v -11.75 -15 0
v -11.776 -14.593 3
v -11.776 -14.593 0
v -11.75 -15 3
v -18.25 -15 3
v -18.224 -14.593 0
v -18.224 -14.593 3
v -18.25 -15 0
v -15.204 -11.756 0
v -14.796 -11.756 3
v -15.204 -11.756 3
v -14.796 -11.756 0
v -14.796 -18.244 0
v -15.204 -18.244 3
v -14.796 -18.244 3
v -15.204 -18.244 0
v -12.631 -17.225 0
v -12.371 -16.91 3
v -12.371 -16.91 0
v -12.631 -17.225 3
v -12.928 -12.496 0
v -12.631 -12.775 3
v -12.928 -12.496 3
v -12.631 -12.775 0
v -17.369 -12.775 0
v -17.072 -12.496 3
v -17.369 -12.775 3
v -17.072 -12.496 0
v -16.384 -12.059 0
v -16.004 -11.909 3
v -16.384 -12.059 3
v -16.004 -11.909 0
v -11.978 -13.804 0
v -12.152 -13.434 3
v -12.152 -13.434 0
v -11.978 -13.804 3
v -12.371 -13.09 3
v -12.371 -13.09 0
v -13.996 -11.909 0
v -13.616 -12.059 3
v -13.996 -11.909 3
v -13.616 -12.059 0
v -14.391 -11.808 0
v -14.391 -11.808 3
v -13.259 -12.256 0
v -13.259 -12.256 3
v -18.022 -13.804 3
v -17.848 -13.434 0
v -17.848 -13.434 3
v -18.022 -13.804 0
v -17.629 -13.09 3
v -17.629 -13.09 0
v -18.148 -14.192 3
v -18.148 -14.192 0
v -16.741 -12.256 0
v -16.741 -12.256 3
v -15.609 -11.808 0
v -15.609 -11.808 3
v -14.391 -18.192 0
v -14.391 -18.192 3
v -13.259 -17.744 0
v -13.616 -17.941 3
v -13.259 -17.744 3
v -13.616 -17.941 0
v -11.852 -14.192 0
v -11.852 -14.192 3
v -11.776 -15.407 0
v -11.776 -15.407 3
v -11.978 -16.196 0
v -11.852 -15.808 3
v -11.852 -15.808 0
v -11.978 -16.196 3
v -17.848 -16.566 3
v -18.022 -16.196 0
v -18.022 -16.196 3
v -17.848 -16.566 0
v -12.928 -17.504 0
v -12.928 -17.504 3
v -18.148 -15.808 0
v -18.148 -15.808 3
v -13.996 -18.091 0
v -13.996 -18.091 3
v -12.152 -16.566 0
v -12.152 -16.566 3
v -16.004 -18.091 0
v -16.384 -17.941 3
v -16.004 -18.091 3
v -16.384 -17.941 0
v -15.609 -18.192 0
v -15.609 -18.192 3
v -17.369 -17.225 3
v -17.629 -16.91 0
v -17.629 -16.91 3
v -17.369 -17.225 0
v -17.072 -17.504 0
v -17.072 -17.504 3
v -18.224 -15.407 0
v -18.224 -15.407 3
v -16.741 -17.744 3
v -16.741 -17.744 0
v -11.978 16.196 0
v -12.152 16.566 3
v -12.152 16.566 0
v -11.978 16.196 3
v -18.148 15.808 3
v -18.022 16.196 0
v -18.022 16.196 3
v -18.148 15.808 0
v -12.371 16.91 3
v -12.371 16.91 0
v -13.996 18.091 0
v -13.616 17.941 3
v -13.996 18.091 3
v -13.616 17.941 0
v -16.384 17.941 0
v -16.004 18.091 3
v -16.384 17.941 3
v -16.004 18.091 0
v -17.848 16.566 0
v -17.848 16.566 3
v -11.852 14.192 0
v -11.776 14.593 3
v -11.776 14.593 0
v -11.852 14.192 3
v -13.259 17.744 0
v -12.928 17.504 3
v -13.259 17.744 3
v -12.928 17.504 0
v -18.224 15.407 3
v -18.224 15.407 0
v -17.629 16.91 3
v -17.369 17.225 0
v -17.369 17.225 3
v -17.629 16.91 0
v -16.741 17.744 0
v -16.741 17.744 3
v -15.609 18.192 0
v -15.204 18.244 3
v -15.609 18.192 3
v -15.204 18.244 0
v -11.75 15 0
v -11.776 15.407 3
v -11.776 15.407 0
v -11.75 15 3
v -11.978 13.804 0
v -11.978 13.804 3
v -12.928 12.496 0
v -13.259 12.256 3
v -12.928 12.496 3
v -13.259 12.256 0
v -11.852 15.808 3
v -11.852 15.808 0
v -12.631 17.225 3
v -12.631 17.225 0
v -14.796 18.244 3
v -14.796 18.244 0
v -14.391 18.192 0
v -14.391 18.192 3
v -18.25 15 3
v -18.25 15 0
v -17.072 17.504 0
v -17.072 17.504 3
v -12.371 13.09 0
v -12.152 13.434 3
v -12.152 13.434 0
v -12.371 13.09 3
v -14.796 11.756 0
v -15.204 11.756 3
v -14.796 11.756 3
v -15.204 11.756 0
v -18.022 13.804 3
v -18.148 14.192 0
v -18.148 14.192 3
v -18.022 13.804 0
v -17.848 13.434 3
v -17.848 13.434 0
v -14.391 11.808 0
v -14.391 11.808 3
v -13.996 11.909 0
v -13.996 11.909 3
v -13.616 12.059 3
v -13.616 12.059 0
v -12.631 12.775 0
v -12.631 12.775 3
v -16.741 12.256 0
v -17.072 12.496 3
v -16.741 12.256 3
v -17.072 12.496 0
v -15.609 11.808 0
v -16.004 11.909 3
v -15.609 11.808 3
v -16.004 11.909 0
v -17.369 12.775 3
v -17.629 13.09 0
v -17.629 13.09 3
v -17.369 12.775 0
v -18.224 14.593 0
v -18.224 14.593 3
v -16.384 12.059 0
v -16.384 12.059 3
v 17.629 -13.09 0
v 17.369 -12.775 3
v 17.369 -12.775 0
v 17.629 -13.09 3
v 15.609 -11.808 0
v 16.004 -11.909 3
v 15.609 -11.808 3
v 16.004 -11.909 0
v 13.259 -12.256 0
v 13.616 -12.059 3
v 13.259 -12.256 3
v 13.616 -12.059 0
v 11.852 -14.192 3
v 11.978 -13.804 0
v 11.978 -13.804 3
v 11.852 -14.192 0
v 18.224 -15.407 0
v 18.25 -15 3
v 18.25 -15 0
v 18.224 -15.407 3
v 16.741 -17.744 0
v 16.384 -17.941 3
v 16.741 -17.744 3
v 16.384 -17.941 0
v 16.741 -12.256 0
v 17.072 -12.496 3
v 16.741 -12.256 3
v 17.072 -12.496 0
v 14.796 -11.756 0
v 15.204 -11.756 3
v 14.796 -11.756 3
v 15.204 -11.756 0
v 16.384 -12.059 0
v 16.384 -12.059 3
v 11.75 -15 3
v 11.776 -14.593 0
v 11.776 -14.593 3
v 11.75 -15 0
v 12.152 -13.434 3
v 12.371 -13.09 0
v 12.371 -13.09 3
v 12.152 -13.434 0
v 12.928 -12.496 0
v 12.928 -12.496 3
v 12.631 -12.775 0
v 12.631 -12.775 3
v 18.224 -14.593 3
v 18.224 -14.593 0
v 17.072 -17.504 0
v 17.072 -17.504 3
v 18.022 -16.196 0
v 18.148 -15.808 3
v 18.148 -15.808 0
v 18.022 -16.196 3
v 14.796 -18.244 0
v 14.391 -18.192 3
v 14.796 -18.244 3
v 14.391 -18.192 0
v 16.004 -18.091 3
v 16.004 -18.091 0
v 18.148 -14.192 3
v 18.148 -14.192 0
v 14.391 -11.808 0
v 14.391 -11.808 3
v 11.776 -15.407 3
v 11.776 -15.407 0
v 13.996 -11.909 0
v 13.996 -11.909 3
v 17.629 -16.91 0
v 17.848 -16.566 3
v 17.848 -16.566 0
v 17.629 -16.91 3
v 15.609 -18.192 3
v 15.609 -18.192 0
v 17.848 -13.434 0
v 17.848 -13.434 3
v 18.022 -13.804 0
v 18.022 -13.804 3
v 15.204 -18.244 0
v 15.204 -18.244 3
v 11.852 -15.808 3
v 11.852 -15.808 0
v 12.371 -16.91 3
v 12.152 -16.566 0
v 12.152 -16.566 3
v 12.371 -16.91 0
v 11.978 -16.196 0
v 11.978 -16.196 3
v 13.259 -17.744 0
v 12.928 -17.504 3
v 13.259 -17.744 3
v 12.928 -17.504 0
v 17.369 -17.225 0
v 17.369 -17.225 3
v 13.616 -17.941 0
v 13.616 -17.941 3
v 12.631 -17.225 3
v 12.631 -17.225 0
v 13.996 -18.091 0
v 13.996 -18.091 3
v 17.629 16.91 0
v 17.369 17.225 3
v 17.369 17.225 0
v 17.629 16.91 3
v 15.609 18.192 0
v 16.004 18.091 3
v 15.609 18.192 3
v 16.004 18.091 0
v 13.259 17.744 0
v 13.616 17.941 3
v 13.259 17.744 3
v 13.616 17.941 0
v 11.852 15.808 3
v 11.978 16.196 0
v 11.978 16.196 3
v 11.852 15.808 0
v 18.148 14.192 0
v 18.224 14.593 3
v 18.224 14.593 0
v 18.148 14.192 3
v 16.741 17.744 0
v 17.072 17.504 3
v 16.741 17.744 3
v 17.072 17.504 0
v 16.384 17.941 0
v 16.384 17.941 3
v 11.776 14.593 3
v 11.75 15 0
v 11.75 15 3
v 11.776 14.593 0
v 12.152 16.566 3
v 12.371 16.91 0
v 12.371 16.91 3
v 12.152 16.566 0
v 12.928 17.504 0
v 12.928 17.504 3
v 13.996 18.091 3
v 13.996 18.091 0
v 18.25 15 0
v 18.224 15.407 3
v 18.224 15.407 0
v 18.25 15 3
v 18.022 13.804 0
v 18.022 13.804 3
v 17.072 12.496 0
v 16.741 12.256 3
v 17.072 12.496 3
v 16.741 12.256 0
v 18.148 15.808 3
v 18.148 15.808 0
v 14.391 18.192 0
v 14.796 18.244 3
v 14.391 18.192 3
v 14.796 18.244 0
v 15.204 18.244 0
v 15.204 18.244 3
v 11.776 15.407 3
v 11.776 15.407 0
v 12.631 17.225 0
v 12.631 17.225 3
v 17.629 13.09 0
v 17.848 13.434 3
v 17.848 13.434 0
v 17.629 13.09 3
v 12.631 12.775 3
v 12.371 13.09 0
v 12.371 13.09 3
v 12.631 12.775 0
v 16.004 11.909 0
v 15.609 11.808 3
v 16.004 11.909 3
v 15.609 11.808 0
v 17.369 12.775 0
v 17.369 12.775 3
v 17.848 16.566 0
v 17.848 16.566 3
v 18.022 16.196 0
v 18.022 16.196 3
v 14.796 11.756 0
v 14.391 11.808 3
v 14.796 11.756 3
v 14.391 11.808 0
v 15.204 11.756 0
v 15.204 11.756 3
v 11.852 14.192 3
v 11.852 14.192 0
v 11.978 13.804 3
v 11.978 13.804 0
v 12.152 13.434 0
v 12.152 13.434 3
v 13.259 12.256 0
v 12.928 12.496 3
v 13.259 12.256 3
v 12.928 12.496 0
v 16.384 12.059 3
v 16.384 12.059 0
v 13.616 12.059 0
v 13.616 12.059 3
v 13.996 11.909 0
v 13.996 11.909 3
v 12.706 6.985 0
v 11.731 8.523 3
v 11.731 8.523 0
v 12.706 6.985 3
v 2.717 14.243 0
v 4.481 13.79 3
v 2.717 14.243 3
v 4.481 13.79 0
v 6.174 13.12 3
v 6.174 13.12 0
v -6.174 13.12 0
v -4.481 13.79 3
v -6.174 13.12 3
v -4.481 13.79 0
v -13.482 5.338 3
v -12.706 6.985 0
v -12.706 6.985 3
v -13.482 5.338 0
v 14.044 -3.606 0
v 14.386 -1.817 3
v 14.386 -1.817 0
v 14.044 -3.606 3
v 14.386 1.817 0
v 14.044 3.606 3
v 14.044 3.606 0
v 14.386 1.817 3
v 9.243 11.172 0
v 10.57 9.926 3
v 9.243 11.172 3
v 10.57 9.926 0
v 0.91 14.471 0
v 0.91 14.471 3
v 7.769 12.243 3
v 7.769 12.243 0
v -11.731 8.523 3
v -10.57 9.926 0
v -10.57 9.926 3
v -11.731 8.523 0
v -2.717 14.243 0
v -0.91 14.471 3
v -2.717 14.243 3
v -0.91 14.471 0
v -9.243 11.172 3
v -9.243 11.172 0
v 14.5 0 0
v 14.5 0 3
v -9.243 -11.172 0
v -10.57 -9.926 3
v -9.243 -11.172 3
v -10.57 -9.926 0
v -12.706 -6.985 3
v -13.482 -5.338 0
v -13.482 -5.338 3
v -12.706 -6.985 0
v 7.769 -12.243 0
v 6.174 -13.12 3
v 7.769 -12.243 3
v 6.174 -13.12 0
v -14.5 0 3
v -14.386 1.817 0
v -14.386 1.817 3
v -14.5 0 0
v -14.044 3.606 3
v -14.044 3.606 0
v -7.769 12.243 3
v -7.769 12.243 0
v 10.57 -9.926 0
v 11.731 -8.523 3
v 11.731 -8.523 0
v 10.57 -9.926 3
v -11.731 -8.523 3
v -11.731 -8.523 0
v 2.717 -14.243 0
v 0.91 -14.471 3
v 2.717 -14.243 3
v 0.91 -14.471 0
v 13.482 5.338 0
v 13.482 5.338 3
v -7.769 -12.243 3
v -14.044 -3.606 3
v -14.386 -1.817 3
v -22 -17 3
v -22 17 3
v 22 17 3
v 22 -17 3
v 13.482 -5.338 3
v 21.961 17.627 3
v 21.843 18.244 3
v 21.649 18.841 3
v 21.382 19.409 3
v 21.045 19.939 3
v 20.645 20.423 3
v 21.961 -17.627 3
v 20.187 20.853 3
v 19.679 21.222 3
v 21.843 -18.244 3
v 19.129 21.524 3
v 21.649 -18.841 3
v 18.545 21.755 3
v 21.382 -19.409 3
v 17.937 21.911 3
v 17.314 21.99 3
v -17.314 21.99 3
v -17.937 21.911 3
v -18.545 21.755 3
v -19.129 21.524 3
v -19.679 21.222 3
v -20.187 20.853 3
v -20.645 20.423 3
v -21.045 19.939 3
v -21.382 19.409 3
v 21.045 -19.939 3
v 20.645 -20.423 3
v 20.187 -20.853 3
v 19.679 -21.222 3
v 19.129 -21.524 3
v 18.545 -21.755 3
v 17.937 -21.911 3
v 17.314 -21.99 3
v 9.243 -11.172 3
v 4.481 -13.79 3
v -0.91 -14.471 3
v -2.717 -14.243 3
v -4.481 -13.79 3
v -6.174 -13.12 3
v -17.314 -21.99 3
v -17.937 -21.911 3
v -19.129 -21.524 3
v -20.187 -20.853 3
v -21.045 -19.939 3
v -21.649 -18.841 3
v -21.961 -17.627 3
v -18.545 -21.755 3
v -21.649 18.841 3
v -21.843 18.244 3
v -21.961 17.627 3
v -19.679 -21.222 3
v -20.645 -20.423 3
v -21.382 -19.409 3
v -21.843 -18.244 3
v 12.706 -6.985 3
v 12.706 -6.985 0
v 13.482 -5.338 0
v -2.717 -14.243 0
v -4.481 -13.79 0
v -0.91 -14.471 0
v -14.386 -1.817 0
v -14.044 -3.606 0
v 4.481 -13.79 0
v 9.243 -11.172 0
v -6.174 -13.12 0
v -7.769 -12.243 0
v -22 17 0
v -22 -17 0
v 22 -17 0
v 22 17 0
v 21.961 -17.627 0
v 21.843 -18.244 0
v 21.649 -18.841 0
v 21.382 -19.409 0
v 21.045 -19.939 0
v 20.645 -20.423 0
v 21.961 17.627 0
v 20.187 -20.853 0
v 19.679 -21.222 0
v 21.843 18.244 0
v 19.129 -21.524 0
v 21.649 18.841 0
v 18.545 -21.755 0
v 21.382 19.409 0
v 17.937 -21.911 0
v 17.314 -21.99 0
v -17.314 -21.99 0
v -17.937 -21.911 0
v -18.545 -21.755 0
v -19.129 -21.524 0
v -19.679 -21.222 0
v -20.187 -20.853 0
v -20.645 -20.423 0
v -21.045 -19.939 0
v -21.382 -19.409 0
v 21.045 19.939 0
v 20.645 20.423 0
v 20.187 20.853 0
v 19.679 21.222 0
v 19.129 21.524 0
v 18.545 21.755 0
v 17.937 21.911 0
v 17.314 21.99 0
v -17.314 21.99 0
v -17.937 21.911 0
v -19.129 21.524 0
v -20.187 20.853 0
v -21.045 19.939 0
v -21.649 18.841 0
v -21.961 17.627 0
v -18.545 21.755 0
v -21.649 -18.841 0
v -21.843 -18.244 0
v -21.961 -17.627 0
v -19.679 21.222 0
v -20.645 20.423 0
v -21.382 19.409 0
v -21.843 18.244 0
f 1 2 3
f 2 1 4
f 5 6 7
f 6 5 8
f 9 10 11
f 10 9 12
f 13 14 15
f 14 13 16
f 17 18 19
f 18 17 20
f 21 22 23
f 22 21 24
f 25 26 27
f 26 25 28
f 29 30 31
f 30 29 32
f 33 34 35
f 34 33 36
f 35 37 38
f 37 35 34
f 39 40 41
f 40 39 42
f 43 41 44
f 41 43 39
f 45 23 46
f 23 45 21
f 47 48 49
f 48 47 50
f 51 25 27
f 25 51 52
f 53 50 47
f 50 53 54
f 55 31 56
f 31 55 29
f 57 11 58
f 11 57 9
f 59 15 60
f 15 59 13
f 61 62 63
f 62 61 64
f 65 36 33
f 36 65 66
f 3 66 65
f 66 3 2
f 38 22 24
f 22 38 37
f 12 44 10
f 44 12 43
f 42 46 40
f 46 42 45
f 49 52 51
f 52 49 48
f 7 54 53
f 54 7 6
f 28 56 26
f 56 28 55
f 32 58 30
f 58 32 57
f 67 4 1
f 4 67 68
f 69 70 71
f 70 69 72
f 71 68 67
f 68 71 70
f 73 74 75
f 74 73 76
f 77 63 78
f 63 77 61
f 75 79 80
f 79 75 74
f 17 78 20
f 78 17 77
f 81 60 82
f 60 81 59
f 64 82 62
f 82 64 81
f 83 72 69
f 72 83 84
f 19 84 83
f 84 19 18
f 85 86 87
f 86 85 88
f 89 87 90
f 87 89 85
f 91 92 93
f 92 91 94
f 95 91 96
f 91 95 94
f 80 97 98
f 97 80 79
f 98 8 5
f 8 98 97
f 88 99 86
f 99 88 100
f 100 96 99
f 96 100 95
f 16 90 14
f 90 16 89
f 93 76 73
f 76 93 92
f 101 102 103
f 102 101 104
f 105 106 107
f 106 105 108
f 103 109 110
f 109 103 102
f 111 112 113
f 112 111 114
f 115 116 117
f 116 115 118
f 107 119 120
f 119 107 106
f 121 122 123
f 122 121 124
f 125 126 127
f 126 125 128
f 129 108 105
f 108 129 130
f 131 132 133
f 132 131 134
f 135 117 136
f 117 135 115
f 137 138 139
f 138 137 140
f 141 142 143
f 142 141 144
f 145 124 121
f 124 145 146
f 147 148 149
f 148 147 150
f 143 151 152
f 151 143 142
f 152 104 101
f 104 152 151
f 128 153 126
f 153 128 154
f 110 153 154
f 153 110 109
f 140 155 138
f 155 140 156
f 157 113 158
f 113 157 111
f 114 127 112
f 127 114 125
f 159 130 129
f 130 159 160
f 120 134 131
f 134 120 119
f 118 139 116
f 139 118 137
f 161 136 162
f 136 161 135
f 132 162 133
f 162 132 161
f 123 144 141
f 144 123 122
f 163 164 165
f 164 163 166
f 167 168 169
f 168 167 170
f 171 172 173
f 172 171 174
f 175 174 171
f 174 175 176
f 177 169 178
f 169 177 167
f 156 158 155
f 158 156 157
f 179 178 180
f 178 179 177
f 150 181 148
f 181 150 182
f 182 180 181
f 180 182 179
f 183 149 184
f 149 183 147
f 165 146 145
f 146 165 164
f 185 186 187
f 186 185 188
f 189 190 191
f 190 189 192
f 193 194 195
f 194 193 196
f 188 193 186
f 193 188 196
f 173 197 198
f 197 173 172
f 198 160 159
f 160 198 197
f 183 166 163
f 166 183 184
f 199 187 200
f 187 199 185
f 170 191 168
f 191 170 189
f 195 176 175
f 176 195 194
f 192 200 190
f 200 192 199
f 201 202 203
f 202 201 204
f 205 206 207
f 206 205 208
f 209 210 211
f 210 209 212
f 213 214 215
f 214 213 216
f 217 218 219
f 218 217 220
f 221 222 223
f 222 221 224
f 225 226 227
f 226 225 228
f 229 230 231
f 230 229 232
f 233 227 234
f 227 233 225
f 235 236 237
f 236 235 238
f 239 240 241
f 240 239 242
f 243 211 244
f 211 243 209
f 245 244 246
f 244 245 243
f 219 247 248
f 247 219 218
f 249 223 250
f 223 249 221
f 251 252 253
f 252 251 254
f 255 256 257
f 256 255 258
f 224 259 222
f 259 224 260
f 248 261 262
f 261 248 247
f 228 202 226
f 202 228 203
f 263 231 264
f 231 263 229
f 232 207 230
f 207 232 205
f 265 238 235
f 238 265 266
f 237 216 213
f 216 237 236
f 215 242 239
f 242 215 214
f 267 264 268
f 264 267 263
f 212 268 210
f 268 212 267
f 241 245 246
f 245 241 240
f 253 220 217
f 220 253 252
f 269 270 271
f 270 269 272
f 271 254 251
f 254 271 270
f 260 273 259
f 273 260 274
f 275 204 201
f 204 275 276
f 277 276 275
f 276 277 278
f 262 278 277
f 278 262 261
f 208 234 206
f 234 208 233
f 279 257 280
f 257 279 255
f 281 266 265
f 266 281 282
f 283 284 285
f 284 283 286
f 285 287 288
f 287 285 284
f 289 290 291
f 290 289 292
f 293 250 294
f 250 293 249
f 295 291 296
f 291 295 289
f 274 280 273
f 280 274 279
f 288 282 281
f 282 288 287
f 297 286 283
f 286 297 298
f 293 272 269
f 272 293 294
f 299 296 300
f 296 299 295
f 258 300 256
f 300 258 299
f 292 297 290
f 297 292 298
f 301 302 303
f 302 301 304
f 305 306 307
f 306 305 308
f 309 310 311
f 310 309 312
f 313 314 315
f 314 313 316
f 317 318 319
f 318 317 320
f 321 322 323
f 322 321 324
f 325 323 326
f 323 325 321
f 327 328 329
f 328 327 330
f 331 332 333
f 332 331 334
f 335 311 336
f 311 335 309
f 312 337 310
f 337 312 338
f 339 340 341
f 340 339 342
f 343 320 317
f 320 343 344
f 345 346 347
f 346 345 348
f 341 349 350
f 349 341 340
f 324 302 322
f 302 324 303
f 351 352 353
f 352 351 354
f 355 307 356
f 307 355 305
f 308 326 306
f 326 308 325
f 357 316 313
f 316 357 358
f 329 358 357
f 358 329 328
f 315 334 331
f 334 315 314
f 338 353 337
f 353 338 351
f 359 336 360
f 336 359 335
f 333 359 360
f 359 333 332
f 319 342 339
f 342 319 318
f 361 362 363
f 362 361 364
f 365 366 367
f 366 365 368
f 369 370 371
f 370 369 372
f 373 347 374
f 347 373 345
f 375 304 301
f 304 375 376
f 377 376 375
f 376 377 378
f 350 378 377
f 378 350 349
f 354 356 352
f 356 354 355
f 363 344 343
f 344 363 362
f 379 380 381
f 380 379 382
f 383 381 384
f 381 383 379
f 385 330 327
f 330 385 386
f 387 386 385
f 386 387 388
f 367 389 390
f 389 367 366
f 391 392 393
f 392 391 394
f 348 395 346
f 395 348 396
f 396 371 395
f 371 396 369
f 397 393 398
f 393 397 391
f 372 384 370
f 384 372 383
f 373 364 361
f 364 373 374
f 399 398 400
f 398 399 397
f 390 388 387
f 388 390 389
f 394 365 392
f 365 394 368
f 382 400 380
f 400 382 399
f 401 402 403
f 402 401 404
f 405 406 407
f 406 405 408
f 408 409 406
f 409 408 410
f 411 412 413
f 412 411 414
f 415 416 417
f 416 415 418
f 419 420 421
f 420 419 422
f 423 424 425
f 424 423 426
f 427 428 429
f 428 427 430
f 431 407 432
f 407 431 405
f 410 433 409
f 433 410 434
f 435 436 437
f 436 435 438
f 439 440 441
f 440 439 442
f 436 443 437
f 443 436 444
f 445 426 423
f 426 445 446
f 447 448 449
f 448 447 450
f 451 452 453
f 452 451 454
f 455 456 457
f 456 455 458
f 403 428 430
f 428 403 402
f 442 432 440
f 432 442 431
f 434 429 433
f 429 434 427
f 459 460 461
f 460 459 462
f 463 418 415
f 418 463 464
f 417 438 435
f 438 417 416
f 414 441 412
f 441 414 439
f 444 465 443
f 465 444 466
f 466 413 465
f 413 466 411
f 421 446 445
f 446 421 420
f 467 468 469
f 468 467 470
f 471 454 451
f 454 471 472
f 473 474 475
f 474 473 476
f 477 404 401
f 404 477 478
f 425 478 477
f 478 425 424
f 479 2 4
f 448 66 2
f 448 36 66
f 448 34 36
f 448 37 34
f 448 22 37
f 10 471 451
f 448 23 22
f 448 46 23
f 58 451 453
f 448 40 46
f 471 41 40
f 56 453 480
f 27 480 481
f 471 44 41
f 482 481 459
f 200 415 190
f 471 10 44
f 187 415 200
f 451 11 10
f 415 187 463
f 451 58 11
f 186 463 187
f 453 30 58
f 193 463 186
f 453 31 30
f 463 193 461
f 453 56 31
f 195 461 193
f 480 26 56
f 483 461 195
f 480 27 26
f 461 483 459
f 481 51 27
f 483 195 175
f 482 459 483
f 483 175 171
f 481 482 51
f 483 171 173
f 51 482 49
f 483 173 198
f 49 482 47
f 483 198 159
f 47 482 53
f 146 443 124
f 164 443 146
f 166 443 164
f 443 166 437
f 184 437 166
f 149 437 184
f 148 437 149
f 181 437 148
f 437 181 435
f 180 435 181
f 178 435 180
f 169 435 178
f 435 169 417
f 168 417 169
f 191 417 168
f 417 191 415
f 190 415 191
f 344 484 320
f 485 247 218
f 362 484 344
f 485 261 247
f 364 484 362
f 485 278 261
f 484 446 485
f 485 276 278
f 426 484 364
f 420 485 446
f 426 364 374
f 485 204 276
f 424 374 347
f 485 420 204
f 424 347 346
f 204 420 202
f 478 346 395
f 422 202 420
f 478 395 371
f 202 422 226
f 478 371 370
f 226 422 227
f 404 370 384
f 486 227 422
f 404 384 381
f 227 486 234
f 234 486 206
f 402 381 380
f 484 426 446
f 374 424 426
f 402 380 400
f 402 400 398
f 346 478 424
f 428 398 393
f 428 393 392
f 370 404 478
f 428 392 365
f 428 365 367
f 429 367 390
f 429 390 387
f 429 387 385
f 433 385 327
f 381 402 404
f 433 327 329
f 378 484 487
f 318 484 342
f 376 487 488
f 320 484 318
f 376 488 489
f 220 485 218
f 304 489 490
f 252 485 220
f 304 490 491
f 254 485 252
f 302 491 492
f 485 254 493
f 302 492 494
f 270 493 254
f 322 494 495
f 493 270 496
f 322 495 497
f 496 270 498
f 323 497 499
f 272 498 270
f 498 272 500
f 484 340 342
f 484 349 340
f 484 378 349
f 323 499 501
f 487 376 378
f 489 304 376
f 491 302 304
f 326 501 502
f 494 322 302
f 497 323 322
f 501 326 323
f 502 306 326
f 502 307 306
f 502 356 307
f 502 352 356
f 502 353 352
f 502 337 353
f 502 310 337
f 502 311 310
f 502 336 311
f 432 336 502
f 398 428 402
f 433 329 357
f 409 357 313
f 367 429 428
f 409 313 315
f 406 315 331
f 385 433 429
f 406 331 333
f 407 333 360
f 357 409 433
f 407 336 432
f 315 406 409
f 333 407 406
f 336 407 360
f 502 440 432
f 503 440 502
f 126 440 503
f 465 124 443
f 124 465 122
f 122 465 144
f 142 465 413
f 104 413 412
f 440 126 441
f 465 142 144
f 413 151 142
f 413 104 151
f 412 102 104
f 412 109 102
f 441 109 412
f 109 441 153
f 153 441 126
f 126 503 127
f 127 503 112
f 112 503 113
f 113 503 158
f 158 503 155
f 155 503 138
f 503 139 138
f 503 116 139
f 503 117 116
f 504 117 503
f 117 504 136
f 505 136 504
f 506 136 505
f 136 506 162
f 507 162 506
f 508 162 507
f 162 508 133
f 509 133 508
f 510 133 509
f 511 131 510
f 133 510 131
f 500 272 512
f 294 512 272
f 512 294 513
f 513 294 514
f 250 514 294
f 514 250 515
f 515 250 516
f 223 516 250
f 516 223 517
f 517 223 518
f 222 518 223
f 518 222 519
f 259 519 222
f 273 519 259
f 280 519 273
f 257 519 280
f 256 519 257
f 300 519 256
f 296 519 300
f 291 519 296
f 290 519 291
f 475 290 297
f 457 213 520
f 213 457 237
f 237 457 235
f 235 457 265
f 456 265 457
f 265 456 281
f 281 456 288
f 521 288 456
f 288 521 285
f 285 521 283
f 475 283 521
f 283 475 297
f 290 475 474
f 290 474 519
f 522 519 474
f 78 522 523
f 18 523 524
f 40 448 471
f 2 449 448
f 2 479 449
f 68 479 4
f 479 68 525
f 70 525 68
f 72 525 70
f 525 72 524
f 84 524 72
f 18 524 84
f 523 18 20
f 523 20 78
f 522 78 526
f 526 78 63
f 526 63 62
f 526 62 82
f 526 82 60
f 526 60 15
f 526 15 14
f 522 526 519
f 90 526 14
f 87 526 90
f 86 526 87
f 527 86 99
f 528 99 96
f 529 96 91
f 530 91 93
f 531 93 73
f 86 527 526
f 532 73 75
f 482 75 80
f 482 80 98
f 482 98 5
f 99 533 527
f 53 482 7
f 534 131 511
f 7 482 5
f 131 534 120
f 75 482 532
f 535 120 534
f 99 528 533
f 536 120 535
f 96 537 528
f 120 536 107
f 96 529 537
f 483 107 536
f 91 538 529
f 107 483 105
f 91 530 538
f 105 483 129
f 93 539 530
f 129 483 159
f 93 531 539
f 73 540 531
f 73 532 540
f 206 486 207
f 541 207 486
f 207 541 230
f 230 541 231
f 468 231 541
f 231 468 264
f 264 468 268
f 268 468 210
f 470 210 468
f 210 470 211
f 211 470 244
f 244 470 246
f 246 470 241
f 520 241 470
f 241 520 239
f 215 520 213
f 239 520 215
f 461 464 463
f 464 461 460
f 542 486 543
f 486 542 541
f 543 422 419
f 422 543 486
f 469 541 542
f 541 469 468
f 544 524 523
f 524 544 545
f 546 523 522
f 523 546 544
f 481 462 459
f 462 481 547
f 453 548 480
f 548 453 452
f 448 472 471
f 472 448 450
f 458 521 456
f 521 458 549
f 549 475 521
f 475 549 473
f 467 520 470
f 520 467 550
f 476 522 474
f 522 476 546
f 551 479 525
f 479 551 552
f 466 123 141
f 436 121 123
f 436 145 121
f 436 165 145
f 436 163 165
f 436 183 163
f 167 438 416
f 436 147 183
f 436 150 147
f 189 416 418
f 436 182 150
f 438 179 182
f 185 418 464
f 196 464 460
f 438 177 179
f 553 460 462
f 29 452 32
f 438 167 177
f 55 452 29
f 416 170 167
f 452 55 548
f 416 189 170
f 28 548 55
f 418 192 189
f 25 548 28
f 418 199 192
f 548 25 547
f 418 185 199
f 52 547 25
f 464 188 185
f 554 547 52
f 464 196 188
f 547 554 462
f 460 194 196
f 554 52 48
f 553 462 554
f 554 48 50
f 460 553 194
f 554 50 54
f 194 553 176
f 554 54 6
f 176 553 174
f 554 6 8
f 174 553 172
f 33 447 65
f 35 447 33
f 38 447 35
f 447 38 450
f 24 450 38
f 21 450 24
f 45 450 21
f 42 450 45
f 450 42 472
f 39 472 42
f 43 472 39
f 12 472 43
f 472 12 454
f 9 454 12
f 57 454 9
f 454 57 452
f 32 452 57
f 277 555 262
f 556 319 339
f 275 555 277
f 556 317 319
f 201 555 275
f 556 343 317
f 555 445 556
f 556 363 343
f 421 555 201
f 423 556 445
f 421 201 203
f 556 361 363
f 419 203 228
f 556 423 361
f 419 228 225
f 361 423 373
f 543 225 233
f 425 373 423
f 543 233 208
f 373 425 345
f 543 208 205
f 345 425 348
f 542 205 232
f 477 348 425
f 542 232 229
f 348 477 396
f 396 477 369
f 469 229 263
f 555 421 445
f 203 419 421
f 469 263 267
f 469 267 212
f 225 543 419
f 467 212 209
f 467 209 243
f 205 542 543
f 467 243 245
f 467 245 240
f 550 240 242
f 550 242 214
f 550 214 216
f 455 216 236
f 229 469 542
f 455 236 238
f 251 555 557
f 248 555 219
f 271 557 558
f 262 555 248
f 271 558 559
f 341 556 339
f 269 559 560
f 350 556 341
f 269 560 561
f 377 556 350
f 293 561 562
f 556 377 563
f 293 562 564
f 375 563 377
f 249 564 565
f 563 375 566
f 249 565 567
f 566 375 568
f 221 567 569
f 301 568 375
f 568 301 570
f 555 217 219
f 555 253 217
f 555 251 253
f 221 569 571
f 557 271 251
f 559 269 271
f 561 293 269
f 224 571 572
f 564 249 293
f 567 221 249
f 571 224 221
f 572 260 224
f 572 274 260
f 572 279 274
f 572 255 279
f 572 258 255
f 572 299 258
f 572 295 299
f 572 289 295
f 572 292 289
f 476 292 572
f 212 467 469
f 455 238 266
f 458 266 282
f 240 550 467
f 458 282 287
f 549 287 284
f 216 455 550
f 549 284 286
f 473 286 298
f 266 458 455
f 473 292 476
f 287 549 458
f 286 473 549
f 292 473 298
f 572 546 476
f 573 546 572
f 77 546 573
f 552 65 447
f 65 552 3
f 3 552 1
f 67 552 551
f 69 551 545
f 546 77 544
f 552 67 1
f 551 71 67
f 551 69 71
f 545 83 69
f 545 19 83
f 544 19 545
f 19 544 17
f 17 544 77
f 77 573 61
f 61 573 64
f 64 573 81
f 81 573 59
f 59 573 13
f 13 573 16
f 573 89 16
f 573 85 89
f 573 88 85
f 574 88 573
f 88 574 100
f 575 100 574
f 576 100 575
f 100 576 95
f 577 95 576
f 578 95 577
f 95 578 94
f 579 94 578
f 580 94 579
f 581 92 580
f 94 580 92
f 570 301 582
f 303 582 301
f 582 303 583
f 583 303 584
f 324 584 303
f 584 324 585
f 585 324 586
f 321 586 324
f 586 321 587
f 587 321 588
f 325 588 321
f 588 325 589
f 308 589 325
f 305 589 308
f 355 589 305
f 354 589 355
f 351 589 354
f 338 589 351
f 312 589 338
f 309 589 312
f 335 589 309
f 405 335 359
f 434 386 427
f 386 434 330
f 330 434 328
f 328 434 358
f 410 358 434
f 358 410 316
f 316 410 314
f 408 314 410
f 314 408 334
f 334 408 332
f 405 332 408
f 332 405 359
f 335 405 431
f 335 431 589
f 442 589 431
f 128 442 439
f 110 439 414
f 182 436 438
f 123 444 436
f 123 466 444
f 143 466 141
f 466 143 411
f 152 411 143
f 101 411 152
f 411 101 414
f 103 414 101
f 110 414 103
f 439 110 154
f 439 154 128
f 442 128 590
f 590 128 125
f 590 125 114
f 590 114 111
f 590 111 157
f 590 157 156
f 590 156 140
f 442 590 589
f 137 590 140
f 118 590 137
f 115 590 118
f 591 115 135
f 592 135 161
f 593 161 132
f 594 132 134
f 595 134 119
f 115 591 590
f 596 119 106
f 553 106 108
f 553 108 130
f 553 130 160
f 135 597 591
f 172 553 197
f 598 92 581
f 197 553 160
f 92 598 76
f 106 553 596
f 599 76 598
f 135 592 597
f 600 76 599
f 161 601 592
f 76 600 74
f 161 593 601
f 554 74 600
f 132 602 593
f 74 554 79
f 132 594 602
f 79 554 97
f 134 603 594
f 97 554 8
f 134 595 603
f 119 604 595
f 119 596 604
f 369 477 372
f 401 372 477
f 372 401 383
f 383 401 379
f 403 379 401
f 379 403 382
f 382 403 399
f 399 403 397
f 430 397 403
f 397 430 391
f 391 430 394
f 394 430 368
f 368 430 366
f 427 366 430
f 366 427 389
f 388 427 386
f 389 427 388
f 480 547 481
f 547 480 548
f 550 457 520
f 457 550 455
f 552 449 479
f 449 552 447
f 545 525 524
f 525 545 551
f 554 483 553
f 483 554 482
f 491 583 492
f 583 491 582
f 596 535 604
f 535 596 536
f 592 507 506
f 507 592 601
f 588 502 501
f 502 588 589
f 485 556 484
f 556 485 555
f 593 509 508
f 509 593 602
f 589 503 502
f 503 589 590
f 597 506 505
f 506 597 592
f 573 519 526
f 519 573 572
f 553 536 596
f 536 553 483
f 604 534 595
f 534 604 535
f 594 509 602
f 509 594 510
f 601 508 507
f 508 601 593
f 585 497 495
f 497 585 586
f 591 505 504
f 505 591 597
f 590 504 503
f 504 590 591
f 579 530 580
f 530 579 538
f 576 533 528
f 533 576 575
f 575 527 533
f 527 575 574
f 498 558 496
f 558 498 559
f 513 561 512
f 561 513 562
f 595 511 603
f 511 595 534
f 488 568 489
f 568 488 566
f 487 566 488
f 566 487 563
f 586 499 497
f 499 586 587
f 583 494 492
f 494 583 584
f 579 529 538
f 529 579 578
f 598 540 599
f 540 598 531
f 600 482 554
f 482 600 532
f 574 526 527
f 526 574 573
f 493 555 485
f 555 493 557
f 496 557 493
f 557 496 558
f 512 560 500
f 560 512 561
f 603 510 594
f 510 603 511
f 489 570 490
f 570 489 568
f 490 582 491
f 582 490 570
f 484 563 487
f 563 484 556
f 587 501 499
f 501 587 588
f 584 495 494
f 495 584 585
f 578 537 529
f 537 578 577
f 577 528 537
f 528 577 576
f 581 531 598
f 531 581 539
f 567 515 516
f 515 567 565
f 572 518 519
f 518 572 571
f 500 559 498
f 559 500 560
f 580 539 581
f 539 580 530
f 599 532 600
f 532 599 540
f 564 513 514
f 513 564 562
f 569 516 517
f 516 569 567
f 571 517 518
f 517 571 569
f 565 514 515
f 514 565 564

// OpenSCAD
$fn = 50;


difference() {
	union() {
		hull() {
			translate(v = [-17.0000000000, 17.0000000000, 0]) {
				cylinder(h = 3, r = 5);
			}
			translate(v = [17.0000000000, 17.0000000000, 0]) {
				cylinder(h = 3, r = 5);
			}
			translate(v = [-17.0000000000, -17.0000000000, 0]) {
				cylinder(h = 3, r = 5);
			}
			translate(v = [17.0000000000, -17.0000000000, 0]) {
				cylinder(h = 3, r = 5);
			}
		}
	}
	union() {
		#translate(v = [-15.0000000000, -15.0000000000, -100.0000000000]) {
			cylinder(h = 200, r = 3.2500000000);
		}
		#translate(v = [-15.0000000000, 15.0000000000, -100.0000000000]) {
			cylinder(h = 200, r = 3.2500000000);
		}
		#translate(v = [15.0000000000, -15.0000000000, -100.0000000000]) {
			cylinder(h = 200, r = 3.2500000000);
		}
		#translate(v = [15.0000000000, 15.0000000000, -100.0000000000]) {
			cylinder(h = 200, r = 3.2500000000);
		}
		#cylinder(h = 3, r = 14.5000000000);
	}
}
